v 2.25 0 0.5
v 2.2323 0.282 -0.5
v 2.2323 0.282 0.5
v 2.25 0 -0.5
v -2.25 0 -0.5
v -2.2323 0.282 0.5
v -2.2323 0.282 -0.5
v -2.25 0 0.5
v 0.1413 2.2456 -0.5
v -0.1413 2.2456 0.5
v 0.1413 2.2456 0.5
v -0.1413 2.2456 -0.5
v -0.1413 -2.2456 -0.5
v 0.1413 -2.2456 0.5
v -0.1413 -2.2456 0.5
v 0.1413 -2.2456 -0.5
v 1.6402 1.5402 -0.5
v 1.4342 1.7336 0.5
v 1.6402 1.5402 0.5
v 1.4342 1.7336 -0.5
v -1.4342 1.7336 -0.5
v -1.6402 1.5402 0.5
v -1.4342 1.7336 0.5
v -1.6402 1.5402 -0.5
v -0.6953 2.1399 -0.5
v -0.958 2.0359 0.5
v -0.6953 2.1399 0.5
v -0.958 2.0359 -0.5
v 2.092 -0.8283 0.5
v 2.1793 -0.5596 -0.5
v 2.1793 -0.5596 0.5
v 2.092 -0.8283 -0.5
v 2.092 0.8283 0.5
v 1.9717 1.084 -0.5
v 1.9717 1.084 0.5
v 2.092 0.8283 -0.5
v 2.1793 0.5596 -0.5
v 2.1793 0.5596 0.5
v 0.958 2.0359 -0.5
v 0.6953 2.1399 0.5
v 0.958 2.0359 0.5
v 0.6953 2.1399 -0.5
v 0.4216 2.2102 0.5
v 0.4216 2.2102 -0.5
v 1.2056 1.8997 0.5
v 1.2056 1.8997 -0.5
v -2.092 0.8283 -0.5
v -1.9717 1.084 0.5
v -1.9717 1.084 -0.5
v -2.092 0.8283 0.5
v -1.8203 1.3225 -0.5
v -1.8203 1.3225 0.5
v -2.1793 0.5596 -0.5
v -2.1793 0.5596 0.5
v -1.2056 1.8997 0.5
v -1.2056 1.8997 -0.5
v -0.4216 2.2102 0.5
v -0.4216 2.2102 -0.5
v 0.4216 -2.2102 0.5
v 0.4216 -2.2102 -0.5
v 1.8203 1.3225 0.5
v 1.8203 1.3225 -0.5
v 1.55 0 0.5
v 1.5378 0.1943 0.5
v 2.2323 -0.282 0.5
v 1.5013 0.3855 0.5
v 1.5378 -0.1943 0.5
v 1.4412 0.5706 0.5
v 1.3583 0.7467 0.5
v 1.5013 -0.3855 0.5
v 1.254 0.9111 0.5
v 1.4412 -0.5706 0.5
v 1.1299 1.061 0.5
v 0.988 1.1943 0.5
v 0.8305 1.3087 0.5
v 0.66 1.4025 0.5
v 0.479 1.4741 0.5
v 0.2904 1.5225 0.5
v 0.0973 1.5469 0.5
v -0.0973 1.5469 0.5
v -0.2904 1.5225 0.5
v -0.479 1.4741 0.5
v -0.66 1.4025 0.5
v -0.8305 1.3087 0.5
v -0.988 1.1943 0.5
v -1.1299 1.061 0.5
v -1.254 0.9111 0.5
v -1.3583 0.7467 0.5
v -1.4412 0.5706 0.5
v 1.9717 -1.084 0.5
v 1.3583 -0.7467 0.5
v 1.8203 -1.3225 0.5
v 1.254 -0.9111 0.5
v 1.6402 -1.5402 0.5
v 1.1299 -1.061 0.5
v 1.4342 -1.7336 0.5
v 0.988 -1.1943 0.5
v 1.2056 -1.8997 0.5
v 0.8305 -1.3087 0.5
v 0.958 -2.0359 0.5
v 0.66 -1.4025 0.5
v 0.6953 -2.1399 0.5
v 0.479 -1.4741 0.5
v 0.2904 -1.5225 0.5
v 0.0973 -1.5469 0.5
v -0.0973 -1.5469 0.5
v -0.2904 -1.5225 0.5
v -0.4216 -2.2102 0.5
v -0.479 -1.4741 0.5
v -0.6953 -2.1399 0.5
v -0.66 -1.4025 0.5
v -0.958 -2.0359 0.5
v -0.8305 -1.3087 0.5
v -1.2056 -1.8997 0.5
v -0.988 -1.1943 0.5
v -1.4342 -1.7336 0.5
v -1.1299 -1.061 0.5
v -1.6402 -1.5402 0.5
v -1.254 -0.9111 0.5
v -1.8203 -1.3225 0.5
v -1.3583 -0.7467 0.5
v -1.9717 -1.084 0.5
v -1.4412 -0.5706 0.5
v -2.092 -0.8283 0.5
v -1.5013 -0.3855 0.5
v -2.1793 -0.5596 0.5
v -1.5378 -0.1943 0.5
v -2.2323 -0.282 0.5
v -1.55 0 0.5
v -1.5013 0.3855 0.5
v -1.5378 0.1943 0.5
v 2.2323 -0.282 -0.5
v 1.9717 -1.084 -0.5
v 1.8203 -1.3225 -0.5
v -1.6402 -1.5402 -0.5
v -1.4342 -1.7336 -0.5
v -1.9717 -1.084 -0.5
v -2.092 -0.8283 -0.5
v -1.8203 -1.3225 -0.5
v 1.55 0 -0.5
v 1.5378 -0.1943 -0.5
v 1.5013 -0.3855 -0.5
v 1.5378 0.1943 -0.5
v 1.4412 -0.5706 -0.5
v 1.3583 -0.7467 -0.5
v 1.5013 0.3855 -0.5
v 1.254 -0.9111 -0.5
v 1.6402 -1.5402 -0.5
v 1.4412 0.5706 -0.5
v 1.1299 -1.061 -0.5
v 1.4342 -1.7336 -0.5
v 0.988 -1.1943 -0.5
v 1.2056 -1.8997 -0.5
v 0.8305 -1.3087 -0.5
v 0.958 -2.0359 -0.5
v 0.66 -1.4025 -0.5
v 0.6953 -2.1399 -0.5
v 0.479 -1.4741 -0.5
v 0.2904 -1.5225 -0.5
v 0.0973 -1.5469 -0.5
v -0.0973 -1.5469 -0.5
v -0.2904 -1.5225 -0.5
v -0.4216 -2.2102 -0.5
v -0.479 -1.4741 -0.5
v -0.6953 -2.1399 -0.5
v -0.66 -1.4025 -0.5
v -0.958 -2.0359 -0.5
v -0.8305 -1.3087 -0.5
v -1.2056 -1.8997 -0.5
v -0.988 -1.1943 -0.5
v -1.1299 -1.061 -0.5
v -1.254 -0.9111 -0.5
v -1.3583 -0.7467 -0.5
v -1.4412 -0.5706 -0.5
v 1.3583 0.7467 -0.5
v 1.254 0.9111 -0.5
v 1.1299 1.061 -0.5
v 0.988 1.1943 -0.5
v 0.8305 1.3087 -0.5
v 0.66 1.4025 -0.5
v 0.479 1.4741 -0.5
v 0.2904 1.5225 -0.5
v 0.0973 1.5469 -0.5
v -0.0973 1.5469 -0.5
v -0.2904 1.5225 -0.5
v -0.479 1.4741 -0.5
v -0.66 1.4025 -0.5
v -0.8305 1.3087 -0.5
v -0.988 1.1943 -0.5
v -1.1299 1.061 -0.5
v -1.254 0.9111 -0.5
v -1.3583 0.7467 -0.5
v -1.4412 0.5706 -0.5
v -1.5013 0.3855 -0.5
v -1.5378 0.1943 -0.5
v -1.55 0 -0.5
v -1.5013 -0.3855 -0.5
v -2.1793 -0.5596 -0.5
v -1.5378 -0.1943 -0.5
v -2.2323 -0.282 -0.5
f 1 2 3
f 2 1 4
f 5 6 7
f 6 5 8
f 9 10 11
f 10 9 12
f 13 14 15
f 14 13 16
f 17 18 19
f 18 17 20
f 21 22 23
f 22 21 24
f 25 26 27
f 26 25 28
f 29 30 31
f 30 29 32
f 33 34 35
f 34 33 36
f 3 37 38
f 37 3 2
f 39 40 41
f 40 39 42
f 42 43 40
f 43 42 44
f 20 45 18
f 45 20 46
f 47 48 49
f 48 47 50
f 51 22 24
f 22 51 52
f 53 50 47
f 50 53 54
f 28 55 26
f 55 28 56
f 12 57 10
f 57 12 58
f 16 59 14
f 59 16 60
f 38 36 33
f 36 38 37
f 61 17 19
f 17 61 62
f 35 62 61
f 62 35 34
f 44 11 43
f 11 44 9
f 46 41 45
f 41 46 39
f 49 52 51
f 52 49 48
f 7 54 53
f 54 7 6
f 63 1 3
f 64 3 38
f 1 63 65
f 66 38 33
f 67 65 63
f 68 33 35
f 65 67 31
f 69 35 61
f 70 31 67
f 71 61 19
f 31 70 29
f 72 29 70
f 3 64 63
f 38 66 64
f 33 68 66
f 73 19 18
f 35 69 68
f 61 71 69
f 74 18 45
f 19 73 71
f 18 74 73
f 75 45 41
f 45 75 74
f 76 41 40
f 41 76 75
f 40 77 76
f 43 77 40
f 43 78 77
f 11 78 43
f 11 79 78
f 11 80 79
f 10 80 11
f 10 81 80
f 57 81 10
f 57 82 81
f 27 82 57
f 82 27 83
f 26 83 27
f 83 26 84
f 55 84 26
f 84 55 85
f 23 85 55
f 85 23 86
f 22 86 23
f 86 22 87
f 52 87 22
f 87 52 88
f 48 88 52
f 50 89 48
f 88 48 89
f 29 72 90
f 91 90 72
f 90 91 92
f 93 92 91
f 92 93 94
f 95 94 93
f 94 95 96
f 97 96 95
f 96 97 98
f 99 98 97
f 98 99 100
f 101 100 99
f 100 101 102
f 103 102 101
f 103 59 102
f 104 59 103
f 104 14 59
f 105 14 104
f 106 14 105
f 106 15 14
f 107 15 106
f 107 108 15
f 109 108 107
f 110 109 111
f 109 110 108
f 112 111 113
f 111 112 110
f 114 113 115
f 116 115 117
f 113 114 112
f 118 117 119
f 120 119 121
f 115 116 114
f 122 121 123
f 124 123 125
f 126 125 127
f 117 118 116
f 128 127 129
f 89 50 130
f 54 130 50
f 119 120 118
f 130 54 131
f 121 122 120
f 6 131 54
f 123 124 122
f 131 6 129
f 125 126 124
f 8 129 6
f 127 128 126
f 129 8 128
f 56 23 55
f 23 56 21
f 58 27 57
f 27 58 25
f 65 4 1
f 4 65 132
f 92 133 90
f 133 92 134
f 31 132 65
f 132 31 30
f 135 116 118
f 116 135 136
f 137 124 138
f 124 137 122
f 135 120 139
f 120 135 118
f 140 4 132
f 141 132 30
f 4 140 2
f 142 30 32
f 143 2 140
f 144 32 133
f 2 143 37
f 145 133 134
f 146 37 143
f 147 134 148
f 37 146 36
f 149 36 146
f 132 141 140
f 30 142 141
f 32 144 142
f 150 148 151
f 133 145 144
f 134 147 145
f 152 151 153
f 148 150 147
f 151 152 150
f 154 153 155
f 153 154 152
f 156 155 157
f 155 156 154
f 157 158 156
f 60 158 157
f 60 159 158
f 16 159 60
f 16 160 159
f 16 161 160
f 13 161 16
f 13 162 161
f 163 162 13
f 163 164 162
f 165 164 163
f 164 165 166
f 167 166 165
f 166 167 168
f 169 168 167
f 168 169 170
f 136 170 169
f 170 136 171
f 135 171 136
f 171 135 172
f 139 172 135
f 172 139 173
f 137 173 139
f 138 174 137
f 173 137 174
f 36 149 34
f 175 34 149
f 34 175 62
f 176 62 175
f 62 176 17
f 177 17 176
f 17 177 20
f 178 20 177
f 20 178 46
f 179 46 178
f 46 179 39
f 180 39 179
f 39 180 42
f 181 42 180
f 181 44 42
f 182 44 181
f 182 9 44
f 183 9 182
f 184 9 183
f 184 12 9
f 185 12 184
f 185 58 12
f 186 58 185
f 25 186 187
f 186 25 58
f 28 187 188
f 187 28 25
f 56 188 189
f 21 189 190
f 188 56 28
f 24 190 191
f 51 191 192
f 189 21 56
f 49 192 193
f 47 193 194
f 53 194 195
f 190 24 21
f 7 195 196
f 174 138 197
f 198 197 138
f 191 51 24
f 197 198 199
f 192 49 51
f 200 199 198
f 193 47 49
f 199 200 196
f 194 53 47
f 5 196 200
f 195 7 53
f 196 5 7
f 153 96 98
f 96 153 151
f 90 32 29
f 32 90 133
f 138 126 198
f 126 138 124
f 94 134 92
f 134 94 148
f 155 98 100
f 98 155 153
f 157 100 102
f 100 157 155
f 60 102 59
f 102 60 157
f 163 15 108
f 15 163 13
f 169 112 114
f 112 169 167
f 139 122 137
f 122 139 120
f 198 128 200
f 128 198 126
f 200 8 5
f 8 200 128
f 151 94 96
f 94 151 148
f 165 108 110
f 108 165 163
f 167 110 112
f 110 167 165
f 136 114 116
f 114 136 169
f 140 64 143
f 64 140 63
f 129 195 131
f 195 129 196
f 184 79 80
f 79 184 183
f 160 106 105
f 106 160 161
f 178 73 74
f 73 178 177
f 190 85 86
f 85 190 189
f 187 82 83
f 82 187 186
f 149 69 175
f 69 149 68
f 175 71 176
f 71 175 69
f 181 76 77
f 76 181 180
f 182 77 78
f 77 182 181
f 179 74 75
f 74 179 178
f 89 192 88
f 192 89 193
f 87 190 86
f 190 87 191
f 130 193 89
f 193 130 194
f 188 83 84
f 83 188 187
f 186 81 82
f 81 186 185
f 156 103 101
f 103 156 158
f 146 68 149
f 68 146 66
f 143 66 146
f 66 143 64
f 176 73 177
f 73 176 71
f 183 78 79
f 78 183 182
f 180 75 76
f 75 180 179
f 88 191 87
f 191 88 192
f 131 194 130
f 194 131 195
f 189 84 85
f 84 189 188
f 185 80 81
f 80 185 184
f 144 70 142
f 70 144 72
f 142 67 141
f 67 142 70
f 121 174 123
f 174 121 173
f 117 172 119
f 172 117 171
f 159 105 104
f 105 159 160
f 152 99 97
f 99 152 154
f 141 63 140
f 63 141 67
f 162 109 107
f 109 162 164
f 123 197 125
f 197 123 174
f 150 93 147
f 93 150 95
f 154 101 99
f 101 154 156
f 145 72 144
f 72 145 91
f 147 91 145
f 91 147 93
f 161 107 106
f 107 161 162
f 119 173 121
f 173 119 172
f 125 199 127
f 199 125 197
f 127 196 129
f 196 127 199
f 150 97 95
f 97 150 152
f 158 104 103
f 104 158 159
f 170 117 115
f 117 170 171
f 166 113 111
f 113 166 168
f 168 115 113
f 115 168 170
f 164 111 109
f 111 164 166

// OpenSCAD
$fn = 50;


difference() {
	union() {
		translate(v = [0, 0, -0.5000000000]) {
			cylinder(h = 1, r = 2.2500000000);
		}
	}
	union() {
		translate(v = [0, 0, -100.0000000000]) {
			cylinder(h = 200, r = 1.5500000000);
		}
	}
}
